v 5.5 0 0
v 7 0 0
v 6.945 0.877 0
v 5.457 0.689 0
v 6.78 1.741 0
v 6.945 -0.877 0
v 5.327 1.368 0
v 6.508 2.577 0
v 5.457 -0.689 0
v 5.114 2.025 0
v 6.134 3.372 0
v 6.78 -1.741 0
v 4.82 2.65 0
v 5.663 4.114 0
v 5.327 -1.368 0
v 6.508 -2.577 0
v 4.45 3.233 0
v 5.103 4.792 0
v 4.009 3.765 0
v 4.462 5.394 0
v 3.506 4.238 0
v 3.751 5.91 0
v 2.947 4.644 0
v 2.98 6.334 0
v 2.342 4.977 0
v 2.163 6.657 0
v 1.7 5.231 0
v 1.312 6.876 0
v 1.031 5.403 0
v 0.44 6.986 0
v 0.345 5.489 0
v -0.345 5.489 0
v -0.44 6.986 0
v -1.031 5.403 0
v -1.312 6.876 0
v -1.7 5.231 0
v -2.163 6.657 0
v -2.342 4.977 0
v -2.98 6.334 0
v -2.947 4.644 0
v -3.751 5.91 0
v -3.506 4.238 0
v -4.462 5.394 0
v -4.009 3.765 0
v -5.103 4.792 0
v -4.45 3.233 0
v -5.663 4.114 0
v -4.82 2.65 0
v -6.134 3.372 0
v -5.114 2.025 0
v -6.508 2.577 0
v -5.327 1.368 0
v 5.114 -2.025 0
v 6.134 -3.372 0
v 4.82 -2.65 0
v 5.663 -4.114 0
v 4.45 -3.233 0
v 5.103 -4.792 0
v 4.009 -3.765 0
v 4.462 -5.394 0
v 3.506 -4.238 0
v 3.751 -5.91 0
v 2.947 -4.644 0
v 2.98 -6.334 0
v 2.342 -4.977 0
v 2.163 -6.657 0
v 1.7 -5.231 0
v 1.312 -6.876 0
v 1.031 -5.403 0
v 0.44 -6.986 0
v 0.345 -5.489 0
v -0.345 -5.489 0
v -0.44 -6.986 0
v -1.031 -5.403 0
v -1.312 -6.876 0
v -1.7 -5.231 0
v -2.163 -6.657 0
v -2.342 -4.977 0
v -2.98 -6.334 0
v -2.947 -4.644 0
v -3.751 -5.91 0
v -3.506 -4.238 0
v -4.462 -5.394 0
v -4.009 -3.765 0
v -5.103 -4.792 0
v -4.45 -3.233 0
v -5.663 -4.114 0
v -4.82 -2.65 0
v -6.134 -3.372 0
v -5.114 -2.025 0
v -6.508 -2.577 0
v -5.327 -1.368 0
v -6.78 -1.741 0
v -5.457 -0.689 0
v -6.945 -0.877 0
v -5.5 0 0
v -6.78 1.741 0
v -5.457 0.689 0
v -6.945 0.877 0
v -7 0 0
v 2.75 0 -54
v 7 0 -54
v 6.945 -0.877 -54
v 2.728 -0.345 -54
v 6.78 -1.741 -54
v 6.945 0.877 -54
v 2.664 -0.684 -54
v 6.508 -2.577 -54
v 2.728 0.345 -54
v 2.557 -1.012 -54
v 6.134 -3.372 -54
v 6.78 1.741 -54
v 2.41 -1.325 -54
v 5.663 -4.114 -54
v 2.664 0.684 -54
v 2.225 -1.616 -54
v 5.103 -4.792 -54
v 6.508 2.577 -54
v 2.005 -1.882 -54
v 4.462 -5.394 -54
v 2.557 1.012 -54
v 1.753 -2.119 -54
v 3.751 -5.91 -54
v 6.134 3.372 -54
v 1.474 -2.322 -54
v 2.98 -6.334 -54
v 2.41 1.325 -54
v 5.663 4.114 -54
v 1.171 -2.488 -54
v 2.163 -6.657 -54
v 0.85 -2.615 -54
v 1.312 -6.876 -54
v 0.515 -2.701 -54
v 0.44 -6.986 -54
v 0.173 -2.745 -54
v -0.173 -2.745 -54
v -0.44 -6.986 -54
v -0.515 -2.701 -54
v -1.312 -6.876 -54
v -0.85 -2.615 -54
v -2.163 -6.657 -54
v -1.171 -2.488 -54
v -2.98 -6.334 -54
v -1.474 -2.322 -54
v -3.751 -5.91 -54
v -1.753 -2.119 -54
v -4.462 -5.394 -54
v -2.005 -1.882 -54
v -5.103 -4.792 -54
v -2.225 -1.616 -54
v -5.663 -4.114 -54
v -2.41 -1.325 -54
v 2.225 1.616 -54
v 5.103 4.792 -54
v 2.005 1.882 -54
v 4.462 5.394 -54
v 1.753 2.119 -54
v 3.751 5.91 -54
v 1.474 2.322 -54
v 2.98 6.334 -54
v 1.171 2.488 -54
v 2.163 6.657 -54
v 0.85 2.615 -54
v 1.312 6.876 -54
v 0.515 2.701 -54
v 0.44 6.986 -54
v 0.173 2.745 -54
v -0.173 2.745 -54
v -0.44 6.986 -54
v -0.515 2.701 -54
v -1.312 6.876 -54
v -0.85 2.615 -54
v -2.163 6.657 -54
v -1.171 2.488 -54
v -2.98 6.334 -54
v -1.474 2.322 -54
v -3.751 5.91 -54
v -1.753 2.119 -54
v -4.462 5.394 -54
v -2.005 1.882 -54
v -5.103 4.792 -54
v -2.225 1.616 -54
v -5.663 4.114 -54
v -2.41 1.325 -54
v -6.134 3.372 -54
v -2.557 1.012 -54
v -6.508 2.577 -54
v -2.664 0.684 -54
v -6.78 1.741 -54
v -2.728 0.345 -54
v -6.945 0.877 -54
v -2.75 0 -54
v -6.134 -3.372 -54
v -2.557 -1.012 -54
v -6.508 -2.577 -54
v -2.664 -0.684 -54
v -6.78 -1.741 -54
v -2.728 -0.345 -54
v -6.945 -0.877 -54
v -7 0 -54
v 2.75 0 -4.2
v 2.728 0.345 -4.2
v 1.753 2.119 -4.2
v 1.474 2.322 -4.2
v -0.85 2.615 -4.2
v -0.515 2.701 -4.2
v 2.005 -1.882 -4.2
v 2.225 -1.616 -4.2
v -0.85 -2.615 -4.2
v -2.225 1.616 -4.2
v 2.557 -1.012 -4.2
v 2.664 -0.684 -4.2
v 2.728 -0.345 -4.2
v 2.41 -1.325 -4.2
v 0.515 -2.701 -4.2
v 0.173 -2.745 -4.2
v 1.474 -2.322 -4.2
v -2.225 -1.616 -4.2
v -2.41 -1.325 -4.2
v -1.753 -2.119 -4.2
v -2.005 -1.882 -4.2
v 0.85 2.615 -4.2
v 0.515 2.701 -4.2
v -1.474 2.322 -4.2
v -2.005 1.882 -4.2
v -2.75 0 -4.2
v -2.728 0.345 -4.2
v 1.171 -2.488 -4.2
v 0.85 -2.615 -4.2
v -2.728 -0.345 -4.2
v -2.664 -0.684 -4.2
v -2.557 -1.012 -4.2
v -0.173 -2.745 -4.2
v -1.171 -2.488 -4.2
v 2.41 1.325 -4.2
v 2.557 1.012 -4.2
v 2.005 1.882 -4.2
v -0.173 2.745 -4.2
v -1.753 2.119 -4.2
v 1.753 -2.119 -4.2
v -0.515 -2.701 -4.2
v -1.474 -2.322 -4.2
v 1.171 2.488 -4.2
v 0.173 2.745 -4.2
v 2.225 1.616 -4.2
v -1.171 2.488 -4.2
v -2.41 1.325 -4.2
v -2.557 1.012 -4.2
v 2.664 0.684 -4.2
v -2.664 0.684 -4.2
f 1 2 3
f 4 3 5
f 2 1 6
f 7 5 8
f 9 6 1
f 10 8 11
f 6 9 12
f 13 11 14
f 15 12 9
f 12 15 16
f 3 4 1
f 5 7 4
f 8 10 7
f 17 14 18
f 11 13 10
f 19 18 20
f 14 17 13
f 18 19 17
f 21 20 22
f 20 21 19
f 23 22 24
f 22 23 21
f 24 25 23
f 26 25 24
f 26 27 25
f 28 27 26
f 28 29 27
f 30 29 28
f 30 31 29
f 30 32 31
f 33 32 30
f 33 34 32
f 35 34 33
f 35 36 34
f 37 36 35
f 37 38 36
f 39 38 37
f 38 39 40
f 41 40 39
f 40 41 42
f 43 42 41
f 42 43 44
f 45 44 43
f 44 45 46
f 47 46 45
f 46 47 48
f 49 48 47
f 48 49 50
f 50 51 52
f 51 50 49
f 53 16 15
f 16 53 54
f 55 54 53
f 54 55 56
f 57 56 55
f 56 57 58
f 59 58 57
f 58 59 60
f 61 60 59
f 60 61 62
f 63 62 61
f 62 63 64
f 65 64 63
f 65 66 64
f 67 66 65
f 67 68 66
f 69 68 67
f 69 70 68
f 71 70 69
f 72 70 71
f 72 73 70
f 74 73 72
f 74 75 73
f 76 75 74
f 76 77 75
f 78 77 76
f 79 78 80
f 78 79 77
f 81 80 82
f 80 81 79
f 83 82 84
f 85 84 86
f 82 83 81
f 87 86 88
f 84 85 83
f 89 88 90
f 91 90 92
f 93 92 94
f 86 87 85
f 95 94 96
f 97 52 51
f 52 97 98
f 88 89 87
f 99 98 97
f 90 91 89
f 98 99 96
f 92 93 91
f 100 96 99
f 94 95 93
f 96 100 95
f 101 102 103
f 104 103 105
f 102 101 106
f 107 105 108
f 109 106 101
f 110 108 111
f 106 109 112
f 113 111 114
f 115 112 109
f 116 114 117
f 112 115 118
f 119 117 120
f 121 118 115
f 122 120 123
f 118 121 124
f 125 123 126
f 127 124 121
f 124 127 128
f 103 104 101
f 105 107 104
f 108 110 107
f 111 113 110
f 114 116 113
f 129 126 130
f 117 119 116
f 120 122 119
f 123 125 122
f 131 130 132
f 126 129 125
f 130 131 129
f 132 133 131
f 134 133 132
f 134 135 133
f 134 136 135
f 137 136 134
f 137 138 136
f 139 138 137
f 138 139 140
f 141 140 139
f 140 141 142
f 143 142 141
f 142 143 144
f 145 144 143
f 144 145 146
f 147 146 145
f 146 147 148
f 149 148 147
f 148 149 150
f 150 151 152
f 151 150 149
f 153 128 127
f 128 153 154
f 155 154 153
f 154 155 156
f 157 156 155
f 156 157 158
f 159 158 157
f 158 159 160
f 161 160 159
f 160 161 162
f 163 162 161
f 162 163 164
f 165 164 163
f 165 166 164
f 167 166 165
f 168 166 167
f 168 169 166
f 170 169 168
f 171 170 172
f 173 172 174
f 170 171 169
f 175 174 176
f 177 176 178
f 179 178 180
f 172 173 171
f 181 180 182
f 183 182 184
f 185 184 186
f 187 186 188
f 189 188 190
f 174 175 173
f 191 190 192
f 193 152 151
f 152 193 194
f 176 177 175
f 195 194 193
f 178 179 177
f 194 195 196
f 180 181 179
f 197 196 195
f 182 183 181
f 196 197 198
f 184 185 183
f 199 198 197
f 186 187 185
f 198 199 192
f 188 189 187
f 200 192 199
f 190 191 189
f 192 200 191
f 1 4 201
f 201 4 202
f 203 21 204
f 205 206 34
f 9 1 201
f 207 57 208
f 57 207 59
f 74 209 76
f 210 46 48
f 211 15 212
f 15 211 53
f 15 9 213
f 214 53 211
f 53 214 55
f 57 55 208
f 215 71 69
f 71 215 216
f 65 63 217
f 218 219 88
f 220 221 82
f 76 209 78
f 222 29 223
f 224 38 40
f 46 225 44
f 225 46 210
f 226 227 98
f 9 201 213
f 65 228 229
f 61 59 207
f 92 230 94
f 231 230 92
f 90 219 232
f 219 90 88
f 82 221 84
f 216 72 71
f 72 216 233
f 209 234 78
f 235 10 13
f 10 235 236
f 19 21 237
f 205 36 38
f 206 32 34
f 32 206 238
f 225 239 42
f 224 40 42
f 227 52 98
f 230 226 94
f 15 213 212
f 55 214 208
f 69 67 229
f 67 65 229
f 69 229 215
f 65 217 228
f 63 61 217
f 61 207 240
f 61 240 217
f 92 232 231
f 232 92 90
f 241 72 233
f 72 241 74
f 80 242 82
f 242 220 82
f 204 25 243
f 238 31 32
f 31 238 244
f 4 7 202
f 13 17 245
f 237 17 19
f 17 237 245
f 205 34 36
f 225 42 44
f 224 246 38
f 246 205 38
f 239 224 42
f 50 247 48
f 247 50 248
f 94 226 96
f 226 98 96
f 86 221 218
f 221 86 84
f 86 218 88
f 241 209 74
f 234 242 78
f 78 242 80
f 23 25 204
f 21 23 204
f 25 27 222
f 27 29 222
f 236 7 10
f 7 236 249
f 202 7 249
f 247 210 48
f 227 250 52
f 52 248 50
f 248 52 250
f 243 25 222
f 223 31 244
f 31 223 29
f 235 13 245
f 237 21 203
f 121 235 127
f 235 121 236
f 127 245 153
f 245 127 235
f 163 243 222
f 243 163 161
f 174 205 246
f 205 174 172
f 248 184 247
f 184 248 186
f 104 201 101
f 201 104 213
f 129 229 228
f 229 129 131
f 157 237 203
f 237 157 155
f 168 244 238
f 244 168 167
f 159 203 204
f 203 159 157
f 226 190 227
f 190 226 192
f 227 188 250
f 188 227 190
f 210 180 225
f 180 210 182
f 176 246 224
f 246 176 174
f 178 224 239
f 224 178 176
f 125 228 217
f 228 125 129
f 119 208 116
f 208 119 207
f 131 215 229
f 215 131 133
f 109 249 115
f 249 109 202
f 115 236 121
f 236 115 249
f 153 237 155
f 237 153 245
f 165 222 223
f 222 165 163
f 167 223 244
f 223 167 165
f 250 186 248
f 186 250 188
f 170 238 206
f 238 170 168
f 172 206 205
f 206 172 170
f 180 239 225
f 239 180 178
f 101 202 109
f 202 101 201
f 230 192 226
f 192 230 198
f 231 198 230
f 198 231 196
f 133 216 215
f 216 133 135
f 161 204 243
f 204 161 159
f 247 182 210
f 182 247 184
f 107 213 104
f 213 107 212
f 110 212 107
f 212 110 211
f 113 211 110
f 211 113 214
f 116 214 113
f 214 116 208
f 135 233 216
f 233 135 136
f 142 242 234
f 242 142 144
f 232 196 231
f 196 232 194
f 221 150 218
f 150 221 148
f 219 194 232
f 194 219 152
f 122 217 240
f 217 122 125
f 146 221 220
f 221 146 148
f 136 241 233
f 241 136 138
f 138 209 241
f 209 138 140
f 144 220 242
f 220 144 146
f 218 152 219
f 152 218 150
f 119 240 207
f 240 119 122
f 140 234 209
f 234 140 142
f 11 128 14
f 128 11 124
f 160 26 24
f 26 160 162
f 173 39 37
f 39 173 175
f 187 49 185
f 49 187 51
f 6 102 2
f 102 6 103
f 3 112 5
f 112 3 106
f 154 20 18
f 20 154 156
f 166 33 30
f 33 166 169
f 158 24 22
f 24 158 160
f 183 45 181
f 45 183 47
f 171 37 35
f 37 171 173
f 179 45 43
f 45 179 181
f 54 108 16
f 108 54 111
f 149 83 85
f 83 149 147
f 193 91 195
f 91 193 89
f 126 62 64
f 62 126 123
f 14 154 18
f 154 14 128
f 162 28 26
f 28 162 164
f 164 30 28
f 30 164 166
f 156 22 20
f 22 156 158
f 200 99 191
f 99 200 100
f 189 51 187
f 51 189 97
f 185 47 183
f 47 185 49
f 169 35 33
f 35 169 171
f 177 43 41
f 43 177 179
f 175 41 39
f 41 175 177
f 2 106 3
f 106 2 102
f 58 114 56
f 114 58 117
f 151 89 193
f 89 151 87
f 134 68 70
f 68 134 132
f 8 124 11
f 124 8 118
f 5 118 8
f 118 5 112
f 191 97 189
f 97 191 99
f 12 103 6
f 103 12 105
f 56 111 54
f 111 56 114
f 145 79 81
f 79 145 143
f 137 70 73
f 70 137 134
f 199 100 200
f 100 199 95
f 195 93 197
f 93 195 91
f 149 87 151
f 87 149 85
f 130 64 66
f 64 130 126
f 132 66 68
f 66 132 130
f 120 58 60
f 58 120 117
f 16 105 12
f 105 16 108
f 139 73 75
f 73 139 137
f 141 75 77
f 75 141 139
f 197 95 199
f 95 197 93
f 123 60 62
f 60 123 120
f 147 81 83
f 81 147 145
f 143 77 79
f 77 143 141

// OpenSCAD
$fn = 50;


difference() {
	union() {
		translate(v = [0, 0, -54.0000000000]) {
			cylinder(h = 54, r = 7.0000000000);
		}
		cylinder(h = 0, r = 13.0000000000);
	}
	union() {
		translate(v = [0, 0, 0]) {
			rotate(a = [0, 0, 0]) {
				difference() {
					union() {
						#translate(v = [0, 0, -54.0000000000]) {
							cylinder(h = 54, r = 2.2500000000);
						}
						#translate(v = [0, 0, -4.2000000000]) {
							cylinder(h = 4.2000000000, r1 = 2.7500000000, r2 = 5.5000000000);
						}
						#translate(v = [0, 0, -54.0000000000]) {
							cylinder(h = 54, r = 2.7500000000);
						}
						#translate(v = [0, 0, -54.0000000000]) {
							cylinder(h = 54, r = 2.2500000000);
						}
					}
					union();
				}
			}
		}
	}
}
